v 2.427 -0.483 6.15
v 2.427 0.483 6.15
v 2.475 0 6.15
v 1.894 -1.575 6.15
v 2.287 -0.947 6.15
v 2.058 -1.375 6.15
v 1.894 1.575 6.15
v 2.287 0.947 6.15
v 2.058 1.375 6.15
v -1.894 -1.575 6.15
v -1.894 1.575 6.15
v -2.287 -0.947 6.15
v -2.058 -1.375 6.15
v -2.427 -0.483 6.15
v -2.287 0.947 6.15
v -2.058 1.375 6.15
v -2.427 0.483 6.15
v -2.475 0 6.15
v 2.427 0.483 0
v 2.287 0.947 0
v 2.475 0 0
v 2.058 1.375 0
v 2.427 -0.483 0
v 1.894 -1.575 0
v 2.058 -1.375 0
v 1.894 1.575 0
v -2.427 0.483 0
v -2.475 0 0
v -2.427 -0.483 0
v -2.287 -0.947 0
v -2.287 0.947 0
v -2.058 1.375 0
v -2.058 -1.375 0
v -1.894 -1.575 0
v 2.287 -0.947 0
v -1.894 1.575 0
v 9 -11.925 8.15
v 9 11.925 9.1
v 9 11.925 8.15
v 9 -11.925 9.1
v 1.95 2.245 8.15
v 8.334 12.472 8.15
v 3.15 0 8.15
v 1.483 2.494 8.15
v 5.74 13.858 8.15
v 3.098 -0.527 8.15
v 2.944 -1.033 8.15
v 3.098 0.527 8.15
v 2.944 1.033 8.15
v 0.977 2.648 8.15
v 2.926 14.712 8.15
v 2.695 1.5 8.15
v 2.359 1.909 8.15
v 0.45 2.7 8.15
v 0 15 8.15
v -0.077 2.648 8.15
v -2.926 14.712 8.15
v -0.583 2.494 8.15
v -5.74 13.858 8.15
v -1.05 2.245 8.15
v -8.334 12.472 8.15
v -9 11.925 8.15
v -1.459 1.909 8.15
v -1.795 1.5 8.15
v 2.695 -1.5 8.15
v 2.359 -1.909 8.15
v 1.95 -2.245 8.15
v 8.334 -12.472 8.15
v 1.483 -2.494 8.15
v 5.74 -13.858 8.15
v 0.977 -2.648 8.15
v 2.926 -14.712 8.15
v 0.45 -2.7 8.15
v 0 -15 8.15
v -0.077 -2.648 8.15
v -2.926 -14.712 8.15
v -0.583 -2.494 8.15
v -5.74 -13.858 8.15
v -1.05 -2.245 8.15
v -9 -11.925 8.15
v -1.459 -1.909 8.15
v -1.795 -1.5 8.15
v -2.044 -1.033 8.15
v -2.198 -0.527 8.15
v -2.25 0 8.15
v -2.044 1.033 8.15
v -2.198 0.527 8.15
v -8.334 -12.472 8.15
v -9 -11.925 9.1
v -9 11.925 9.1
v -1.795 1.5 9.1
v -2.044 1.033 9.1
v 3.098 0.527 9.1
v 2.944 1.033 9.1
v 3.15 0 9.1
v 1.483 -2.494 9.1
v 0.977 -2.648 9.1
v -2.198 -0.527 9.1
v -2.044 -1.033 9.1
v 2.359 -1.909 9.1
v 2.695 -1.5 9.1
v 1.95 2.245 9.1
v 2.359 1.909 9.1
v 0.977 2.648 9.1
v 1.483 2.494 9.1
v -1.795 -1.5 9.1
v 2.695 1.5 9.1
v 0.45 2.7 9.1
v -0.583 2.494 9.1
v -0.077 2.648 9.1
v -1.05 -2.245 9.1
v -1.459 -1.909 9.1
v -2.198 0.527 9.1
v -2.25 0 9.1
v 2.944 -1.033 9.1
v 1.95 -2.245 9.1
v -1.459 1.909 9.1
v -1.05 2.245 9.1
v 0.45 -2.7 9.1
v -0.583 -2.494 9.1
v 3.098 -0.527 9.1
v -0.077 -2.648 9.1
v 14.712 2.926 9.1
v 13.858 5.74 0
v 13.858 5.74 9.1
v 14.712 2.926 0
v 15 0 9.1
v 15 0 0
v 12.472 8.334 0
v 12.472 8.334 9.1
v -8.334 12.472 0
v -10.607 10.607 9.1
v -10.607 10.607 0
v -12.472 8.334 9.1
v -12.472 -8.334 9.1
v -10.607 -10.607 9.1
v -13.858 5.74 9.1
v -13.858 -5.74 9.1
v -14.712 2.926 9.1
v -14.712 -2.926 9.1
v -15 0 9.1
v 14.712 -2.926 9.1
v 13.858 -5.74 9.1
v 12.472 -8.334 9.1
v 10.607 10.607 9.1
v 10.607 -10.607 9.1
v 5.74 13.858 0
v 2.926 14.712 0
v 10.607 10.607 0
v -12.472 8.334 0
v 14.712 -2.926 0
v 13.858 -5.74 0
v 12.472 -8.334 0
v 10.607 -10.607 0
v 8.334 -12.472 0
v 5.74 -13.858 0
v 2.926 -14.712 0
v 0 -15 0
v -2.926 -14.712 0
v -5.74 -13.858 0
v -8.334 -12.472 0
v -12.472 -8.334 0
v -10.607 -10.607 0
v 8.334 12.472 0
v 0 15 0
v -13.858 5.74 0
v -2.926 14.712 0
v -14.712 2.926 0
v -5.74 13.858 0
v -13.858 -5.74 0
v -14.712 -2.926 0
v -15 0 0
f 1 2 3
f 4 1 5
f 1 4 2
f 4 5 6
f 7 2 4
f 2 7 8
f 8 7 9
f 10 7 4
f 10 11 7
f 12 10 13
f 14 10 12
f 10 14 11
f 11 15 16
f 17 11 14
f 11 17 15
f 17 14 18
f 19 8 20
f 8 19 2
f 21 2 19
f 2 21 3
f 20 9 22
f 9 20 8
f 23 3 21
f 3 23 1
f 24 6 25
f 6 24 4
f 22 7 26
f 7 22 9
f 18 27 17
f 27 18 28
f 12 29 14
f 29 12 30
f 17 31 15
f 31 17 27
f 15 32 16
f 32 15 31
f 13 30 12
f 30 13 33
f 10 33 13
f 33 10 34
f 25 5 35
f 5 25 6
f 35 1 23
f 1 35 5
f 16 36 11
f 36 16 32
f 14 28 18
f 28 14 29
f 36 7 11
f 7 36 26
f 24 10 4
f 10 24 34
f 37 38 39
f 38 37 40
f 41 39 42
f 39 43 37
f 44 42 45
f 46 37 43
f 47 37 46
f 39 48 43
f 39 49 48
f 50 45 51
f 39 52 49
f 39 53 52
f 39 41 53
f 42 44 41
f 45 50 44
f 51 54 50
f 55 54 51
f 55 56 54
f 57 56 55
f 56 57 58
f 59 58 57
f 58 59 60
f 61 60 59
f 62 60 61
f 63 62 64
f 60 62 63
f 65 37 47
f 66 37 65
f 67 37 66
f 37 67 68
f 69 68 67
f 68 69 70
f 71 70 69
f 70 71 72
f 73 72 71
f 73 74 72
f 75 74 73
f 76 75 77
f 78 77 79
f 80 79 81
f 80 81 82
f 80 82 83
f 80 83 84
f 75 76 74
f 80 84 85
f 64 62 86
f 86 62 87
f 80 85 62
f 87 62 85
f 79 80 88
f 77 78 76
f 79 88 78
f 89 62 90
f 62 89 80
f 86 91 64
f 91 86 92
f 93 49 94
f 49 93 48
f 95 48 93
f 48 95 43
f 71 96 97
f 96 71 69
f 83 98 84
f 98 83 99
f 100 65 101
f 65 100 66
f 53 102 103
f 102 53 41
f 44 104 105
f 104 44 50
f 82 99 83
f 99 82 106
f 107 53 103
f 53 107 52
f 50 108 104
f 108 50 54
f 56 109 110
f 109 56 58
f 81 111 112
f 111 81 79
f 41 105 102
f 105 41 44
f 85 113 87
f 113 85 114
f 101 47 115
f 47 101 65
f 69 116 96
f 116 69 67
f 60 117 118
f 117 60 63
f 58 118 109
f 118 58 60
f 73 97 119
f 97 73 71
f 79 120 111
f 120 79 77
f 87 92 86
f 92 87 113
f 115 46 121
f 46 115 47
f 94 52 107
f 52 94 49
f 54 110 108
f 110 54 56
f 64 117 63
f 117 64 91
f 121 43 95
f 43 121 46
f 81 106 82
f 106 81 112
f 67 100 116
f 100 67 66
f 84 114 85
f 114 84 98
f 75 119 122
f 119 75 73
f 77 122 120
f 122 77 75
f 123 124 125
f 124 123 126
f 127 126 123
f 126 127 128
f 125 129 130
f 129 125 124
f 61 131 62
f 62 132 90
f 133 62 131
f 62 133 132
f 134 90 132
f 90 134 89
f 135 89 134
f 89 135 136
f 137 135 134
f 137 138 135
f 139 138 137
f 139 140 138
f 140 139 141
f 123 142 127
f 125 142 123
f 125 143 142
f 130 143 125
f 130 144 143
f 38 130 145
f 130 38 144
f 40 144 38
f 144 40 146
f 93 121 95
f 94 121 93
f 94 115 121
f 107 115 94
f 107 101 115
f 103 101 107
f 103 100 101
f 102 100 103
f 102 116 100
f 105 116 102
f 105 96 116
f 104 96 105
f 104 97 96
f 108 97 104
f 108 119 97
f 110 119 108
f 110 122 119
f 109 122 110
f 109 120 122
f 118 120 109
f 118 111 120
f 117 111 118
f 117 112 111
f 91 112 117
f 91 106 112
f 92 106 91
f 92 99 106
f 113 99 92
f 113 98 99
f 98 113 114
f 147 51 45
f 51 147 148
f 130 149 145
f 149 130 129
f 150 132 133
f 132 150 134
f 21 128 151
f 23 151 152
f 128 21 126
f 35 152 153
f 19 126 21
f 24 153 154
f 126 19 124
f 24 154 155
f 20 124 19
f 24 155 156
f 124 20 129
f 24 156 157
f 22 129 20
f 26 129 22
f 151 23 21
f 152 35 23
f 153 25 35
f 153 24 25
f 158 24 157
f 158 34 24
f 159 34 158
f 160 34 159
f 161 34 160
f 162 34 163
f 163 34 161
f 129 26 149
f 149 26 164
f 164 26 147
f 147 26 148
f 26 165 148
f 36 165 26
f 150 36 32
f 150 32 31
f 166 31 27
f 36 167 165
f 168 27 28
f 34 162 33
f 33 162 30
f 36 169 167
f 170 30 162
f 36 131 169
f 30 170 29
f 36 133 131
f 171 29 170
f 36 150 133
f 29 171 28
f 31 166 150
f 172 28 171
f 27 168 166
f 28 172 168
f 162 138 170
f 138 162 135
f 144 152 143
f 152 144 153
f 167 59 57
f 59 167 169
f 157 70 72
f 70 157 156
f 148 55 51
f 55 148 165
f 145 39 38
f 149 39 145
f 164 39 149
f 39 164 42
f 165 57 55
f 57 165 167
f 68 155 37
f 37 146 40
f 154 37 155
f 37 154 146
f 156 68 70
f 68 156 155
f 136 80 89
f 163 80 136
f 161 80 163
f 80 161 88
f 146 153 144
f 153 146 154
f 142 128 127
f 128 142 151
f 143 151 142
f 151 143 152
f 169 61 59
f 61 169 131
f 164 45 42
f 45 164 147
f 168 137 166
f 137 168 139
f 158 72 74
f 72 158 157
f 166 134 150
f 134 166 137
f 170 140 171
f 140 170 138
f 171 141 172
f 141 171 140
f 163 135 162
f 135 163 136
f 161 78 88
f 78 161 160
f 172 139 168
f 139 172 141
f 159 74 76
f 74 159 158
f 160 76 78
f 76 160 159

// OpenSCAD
$fn = 32;

tolerance=0.25;

d = 4.7 + tolerance;
h = 6.1;
u = 0.05;
sub_h = 2.9 + tolerance;
shaft_d = 30;

extra_h = 3;


difference() {
    cylinder(h=extra_h + h, d=shaft_d);
    
    translate([0, 0, -u]) {
        intersection() {
            cylinder(h=h + 2 * u, d=d);

            translate([0, 0, h / 2 + u]) {
                cube([d, sub_h, h + 2 * u], center=true);
            }
        }
    }
    
    difference() {
        translate([-9, -50, h + extra_h - 1 + u]){
            cube([18, 100, 1]);
        }
        
        translate([0.45, 0, 0]) {
            cylinder(h=100, d=5.4);
        }
    }
}

/*
18
d 5.4
6.8
5.9
*/
